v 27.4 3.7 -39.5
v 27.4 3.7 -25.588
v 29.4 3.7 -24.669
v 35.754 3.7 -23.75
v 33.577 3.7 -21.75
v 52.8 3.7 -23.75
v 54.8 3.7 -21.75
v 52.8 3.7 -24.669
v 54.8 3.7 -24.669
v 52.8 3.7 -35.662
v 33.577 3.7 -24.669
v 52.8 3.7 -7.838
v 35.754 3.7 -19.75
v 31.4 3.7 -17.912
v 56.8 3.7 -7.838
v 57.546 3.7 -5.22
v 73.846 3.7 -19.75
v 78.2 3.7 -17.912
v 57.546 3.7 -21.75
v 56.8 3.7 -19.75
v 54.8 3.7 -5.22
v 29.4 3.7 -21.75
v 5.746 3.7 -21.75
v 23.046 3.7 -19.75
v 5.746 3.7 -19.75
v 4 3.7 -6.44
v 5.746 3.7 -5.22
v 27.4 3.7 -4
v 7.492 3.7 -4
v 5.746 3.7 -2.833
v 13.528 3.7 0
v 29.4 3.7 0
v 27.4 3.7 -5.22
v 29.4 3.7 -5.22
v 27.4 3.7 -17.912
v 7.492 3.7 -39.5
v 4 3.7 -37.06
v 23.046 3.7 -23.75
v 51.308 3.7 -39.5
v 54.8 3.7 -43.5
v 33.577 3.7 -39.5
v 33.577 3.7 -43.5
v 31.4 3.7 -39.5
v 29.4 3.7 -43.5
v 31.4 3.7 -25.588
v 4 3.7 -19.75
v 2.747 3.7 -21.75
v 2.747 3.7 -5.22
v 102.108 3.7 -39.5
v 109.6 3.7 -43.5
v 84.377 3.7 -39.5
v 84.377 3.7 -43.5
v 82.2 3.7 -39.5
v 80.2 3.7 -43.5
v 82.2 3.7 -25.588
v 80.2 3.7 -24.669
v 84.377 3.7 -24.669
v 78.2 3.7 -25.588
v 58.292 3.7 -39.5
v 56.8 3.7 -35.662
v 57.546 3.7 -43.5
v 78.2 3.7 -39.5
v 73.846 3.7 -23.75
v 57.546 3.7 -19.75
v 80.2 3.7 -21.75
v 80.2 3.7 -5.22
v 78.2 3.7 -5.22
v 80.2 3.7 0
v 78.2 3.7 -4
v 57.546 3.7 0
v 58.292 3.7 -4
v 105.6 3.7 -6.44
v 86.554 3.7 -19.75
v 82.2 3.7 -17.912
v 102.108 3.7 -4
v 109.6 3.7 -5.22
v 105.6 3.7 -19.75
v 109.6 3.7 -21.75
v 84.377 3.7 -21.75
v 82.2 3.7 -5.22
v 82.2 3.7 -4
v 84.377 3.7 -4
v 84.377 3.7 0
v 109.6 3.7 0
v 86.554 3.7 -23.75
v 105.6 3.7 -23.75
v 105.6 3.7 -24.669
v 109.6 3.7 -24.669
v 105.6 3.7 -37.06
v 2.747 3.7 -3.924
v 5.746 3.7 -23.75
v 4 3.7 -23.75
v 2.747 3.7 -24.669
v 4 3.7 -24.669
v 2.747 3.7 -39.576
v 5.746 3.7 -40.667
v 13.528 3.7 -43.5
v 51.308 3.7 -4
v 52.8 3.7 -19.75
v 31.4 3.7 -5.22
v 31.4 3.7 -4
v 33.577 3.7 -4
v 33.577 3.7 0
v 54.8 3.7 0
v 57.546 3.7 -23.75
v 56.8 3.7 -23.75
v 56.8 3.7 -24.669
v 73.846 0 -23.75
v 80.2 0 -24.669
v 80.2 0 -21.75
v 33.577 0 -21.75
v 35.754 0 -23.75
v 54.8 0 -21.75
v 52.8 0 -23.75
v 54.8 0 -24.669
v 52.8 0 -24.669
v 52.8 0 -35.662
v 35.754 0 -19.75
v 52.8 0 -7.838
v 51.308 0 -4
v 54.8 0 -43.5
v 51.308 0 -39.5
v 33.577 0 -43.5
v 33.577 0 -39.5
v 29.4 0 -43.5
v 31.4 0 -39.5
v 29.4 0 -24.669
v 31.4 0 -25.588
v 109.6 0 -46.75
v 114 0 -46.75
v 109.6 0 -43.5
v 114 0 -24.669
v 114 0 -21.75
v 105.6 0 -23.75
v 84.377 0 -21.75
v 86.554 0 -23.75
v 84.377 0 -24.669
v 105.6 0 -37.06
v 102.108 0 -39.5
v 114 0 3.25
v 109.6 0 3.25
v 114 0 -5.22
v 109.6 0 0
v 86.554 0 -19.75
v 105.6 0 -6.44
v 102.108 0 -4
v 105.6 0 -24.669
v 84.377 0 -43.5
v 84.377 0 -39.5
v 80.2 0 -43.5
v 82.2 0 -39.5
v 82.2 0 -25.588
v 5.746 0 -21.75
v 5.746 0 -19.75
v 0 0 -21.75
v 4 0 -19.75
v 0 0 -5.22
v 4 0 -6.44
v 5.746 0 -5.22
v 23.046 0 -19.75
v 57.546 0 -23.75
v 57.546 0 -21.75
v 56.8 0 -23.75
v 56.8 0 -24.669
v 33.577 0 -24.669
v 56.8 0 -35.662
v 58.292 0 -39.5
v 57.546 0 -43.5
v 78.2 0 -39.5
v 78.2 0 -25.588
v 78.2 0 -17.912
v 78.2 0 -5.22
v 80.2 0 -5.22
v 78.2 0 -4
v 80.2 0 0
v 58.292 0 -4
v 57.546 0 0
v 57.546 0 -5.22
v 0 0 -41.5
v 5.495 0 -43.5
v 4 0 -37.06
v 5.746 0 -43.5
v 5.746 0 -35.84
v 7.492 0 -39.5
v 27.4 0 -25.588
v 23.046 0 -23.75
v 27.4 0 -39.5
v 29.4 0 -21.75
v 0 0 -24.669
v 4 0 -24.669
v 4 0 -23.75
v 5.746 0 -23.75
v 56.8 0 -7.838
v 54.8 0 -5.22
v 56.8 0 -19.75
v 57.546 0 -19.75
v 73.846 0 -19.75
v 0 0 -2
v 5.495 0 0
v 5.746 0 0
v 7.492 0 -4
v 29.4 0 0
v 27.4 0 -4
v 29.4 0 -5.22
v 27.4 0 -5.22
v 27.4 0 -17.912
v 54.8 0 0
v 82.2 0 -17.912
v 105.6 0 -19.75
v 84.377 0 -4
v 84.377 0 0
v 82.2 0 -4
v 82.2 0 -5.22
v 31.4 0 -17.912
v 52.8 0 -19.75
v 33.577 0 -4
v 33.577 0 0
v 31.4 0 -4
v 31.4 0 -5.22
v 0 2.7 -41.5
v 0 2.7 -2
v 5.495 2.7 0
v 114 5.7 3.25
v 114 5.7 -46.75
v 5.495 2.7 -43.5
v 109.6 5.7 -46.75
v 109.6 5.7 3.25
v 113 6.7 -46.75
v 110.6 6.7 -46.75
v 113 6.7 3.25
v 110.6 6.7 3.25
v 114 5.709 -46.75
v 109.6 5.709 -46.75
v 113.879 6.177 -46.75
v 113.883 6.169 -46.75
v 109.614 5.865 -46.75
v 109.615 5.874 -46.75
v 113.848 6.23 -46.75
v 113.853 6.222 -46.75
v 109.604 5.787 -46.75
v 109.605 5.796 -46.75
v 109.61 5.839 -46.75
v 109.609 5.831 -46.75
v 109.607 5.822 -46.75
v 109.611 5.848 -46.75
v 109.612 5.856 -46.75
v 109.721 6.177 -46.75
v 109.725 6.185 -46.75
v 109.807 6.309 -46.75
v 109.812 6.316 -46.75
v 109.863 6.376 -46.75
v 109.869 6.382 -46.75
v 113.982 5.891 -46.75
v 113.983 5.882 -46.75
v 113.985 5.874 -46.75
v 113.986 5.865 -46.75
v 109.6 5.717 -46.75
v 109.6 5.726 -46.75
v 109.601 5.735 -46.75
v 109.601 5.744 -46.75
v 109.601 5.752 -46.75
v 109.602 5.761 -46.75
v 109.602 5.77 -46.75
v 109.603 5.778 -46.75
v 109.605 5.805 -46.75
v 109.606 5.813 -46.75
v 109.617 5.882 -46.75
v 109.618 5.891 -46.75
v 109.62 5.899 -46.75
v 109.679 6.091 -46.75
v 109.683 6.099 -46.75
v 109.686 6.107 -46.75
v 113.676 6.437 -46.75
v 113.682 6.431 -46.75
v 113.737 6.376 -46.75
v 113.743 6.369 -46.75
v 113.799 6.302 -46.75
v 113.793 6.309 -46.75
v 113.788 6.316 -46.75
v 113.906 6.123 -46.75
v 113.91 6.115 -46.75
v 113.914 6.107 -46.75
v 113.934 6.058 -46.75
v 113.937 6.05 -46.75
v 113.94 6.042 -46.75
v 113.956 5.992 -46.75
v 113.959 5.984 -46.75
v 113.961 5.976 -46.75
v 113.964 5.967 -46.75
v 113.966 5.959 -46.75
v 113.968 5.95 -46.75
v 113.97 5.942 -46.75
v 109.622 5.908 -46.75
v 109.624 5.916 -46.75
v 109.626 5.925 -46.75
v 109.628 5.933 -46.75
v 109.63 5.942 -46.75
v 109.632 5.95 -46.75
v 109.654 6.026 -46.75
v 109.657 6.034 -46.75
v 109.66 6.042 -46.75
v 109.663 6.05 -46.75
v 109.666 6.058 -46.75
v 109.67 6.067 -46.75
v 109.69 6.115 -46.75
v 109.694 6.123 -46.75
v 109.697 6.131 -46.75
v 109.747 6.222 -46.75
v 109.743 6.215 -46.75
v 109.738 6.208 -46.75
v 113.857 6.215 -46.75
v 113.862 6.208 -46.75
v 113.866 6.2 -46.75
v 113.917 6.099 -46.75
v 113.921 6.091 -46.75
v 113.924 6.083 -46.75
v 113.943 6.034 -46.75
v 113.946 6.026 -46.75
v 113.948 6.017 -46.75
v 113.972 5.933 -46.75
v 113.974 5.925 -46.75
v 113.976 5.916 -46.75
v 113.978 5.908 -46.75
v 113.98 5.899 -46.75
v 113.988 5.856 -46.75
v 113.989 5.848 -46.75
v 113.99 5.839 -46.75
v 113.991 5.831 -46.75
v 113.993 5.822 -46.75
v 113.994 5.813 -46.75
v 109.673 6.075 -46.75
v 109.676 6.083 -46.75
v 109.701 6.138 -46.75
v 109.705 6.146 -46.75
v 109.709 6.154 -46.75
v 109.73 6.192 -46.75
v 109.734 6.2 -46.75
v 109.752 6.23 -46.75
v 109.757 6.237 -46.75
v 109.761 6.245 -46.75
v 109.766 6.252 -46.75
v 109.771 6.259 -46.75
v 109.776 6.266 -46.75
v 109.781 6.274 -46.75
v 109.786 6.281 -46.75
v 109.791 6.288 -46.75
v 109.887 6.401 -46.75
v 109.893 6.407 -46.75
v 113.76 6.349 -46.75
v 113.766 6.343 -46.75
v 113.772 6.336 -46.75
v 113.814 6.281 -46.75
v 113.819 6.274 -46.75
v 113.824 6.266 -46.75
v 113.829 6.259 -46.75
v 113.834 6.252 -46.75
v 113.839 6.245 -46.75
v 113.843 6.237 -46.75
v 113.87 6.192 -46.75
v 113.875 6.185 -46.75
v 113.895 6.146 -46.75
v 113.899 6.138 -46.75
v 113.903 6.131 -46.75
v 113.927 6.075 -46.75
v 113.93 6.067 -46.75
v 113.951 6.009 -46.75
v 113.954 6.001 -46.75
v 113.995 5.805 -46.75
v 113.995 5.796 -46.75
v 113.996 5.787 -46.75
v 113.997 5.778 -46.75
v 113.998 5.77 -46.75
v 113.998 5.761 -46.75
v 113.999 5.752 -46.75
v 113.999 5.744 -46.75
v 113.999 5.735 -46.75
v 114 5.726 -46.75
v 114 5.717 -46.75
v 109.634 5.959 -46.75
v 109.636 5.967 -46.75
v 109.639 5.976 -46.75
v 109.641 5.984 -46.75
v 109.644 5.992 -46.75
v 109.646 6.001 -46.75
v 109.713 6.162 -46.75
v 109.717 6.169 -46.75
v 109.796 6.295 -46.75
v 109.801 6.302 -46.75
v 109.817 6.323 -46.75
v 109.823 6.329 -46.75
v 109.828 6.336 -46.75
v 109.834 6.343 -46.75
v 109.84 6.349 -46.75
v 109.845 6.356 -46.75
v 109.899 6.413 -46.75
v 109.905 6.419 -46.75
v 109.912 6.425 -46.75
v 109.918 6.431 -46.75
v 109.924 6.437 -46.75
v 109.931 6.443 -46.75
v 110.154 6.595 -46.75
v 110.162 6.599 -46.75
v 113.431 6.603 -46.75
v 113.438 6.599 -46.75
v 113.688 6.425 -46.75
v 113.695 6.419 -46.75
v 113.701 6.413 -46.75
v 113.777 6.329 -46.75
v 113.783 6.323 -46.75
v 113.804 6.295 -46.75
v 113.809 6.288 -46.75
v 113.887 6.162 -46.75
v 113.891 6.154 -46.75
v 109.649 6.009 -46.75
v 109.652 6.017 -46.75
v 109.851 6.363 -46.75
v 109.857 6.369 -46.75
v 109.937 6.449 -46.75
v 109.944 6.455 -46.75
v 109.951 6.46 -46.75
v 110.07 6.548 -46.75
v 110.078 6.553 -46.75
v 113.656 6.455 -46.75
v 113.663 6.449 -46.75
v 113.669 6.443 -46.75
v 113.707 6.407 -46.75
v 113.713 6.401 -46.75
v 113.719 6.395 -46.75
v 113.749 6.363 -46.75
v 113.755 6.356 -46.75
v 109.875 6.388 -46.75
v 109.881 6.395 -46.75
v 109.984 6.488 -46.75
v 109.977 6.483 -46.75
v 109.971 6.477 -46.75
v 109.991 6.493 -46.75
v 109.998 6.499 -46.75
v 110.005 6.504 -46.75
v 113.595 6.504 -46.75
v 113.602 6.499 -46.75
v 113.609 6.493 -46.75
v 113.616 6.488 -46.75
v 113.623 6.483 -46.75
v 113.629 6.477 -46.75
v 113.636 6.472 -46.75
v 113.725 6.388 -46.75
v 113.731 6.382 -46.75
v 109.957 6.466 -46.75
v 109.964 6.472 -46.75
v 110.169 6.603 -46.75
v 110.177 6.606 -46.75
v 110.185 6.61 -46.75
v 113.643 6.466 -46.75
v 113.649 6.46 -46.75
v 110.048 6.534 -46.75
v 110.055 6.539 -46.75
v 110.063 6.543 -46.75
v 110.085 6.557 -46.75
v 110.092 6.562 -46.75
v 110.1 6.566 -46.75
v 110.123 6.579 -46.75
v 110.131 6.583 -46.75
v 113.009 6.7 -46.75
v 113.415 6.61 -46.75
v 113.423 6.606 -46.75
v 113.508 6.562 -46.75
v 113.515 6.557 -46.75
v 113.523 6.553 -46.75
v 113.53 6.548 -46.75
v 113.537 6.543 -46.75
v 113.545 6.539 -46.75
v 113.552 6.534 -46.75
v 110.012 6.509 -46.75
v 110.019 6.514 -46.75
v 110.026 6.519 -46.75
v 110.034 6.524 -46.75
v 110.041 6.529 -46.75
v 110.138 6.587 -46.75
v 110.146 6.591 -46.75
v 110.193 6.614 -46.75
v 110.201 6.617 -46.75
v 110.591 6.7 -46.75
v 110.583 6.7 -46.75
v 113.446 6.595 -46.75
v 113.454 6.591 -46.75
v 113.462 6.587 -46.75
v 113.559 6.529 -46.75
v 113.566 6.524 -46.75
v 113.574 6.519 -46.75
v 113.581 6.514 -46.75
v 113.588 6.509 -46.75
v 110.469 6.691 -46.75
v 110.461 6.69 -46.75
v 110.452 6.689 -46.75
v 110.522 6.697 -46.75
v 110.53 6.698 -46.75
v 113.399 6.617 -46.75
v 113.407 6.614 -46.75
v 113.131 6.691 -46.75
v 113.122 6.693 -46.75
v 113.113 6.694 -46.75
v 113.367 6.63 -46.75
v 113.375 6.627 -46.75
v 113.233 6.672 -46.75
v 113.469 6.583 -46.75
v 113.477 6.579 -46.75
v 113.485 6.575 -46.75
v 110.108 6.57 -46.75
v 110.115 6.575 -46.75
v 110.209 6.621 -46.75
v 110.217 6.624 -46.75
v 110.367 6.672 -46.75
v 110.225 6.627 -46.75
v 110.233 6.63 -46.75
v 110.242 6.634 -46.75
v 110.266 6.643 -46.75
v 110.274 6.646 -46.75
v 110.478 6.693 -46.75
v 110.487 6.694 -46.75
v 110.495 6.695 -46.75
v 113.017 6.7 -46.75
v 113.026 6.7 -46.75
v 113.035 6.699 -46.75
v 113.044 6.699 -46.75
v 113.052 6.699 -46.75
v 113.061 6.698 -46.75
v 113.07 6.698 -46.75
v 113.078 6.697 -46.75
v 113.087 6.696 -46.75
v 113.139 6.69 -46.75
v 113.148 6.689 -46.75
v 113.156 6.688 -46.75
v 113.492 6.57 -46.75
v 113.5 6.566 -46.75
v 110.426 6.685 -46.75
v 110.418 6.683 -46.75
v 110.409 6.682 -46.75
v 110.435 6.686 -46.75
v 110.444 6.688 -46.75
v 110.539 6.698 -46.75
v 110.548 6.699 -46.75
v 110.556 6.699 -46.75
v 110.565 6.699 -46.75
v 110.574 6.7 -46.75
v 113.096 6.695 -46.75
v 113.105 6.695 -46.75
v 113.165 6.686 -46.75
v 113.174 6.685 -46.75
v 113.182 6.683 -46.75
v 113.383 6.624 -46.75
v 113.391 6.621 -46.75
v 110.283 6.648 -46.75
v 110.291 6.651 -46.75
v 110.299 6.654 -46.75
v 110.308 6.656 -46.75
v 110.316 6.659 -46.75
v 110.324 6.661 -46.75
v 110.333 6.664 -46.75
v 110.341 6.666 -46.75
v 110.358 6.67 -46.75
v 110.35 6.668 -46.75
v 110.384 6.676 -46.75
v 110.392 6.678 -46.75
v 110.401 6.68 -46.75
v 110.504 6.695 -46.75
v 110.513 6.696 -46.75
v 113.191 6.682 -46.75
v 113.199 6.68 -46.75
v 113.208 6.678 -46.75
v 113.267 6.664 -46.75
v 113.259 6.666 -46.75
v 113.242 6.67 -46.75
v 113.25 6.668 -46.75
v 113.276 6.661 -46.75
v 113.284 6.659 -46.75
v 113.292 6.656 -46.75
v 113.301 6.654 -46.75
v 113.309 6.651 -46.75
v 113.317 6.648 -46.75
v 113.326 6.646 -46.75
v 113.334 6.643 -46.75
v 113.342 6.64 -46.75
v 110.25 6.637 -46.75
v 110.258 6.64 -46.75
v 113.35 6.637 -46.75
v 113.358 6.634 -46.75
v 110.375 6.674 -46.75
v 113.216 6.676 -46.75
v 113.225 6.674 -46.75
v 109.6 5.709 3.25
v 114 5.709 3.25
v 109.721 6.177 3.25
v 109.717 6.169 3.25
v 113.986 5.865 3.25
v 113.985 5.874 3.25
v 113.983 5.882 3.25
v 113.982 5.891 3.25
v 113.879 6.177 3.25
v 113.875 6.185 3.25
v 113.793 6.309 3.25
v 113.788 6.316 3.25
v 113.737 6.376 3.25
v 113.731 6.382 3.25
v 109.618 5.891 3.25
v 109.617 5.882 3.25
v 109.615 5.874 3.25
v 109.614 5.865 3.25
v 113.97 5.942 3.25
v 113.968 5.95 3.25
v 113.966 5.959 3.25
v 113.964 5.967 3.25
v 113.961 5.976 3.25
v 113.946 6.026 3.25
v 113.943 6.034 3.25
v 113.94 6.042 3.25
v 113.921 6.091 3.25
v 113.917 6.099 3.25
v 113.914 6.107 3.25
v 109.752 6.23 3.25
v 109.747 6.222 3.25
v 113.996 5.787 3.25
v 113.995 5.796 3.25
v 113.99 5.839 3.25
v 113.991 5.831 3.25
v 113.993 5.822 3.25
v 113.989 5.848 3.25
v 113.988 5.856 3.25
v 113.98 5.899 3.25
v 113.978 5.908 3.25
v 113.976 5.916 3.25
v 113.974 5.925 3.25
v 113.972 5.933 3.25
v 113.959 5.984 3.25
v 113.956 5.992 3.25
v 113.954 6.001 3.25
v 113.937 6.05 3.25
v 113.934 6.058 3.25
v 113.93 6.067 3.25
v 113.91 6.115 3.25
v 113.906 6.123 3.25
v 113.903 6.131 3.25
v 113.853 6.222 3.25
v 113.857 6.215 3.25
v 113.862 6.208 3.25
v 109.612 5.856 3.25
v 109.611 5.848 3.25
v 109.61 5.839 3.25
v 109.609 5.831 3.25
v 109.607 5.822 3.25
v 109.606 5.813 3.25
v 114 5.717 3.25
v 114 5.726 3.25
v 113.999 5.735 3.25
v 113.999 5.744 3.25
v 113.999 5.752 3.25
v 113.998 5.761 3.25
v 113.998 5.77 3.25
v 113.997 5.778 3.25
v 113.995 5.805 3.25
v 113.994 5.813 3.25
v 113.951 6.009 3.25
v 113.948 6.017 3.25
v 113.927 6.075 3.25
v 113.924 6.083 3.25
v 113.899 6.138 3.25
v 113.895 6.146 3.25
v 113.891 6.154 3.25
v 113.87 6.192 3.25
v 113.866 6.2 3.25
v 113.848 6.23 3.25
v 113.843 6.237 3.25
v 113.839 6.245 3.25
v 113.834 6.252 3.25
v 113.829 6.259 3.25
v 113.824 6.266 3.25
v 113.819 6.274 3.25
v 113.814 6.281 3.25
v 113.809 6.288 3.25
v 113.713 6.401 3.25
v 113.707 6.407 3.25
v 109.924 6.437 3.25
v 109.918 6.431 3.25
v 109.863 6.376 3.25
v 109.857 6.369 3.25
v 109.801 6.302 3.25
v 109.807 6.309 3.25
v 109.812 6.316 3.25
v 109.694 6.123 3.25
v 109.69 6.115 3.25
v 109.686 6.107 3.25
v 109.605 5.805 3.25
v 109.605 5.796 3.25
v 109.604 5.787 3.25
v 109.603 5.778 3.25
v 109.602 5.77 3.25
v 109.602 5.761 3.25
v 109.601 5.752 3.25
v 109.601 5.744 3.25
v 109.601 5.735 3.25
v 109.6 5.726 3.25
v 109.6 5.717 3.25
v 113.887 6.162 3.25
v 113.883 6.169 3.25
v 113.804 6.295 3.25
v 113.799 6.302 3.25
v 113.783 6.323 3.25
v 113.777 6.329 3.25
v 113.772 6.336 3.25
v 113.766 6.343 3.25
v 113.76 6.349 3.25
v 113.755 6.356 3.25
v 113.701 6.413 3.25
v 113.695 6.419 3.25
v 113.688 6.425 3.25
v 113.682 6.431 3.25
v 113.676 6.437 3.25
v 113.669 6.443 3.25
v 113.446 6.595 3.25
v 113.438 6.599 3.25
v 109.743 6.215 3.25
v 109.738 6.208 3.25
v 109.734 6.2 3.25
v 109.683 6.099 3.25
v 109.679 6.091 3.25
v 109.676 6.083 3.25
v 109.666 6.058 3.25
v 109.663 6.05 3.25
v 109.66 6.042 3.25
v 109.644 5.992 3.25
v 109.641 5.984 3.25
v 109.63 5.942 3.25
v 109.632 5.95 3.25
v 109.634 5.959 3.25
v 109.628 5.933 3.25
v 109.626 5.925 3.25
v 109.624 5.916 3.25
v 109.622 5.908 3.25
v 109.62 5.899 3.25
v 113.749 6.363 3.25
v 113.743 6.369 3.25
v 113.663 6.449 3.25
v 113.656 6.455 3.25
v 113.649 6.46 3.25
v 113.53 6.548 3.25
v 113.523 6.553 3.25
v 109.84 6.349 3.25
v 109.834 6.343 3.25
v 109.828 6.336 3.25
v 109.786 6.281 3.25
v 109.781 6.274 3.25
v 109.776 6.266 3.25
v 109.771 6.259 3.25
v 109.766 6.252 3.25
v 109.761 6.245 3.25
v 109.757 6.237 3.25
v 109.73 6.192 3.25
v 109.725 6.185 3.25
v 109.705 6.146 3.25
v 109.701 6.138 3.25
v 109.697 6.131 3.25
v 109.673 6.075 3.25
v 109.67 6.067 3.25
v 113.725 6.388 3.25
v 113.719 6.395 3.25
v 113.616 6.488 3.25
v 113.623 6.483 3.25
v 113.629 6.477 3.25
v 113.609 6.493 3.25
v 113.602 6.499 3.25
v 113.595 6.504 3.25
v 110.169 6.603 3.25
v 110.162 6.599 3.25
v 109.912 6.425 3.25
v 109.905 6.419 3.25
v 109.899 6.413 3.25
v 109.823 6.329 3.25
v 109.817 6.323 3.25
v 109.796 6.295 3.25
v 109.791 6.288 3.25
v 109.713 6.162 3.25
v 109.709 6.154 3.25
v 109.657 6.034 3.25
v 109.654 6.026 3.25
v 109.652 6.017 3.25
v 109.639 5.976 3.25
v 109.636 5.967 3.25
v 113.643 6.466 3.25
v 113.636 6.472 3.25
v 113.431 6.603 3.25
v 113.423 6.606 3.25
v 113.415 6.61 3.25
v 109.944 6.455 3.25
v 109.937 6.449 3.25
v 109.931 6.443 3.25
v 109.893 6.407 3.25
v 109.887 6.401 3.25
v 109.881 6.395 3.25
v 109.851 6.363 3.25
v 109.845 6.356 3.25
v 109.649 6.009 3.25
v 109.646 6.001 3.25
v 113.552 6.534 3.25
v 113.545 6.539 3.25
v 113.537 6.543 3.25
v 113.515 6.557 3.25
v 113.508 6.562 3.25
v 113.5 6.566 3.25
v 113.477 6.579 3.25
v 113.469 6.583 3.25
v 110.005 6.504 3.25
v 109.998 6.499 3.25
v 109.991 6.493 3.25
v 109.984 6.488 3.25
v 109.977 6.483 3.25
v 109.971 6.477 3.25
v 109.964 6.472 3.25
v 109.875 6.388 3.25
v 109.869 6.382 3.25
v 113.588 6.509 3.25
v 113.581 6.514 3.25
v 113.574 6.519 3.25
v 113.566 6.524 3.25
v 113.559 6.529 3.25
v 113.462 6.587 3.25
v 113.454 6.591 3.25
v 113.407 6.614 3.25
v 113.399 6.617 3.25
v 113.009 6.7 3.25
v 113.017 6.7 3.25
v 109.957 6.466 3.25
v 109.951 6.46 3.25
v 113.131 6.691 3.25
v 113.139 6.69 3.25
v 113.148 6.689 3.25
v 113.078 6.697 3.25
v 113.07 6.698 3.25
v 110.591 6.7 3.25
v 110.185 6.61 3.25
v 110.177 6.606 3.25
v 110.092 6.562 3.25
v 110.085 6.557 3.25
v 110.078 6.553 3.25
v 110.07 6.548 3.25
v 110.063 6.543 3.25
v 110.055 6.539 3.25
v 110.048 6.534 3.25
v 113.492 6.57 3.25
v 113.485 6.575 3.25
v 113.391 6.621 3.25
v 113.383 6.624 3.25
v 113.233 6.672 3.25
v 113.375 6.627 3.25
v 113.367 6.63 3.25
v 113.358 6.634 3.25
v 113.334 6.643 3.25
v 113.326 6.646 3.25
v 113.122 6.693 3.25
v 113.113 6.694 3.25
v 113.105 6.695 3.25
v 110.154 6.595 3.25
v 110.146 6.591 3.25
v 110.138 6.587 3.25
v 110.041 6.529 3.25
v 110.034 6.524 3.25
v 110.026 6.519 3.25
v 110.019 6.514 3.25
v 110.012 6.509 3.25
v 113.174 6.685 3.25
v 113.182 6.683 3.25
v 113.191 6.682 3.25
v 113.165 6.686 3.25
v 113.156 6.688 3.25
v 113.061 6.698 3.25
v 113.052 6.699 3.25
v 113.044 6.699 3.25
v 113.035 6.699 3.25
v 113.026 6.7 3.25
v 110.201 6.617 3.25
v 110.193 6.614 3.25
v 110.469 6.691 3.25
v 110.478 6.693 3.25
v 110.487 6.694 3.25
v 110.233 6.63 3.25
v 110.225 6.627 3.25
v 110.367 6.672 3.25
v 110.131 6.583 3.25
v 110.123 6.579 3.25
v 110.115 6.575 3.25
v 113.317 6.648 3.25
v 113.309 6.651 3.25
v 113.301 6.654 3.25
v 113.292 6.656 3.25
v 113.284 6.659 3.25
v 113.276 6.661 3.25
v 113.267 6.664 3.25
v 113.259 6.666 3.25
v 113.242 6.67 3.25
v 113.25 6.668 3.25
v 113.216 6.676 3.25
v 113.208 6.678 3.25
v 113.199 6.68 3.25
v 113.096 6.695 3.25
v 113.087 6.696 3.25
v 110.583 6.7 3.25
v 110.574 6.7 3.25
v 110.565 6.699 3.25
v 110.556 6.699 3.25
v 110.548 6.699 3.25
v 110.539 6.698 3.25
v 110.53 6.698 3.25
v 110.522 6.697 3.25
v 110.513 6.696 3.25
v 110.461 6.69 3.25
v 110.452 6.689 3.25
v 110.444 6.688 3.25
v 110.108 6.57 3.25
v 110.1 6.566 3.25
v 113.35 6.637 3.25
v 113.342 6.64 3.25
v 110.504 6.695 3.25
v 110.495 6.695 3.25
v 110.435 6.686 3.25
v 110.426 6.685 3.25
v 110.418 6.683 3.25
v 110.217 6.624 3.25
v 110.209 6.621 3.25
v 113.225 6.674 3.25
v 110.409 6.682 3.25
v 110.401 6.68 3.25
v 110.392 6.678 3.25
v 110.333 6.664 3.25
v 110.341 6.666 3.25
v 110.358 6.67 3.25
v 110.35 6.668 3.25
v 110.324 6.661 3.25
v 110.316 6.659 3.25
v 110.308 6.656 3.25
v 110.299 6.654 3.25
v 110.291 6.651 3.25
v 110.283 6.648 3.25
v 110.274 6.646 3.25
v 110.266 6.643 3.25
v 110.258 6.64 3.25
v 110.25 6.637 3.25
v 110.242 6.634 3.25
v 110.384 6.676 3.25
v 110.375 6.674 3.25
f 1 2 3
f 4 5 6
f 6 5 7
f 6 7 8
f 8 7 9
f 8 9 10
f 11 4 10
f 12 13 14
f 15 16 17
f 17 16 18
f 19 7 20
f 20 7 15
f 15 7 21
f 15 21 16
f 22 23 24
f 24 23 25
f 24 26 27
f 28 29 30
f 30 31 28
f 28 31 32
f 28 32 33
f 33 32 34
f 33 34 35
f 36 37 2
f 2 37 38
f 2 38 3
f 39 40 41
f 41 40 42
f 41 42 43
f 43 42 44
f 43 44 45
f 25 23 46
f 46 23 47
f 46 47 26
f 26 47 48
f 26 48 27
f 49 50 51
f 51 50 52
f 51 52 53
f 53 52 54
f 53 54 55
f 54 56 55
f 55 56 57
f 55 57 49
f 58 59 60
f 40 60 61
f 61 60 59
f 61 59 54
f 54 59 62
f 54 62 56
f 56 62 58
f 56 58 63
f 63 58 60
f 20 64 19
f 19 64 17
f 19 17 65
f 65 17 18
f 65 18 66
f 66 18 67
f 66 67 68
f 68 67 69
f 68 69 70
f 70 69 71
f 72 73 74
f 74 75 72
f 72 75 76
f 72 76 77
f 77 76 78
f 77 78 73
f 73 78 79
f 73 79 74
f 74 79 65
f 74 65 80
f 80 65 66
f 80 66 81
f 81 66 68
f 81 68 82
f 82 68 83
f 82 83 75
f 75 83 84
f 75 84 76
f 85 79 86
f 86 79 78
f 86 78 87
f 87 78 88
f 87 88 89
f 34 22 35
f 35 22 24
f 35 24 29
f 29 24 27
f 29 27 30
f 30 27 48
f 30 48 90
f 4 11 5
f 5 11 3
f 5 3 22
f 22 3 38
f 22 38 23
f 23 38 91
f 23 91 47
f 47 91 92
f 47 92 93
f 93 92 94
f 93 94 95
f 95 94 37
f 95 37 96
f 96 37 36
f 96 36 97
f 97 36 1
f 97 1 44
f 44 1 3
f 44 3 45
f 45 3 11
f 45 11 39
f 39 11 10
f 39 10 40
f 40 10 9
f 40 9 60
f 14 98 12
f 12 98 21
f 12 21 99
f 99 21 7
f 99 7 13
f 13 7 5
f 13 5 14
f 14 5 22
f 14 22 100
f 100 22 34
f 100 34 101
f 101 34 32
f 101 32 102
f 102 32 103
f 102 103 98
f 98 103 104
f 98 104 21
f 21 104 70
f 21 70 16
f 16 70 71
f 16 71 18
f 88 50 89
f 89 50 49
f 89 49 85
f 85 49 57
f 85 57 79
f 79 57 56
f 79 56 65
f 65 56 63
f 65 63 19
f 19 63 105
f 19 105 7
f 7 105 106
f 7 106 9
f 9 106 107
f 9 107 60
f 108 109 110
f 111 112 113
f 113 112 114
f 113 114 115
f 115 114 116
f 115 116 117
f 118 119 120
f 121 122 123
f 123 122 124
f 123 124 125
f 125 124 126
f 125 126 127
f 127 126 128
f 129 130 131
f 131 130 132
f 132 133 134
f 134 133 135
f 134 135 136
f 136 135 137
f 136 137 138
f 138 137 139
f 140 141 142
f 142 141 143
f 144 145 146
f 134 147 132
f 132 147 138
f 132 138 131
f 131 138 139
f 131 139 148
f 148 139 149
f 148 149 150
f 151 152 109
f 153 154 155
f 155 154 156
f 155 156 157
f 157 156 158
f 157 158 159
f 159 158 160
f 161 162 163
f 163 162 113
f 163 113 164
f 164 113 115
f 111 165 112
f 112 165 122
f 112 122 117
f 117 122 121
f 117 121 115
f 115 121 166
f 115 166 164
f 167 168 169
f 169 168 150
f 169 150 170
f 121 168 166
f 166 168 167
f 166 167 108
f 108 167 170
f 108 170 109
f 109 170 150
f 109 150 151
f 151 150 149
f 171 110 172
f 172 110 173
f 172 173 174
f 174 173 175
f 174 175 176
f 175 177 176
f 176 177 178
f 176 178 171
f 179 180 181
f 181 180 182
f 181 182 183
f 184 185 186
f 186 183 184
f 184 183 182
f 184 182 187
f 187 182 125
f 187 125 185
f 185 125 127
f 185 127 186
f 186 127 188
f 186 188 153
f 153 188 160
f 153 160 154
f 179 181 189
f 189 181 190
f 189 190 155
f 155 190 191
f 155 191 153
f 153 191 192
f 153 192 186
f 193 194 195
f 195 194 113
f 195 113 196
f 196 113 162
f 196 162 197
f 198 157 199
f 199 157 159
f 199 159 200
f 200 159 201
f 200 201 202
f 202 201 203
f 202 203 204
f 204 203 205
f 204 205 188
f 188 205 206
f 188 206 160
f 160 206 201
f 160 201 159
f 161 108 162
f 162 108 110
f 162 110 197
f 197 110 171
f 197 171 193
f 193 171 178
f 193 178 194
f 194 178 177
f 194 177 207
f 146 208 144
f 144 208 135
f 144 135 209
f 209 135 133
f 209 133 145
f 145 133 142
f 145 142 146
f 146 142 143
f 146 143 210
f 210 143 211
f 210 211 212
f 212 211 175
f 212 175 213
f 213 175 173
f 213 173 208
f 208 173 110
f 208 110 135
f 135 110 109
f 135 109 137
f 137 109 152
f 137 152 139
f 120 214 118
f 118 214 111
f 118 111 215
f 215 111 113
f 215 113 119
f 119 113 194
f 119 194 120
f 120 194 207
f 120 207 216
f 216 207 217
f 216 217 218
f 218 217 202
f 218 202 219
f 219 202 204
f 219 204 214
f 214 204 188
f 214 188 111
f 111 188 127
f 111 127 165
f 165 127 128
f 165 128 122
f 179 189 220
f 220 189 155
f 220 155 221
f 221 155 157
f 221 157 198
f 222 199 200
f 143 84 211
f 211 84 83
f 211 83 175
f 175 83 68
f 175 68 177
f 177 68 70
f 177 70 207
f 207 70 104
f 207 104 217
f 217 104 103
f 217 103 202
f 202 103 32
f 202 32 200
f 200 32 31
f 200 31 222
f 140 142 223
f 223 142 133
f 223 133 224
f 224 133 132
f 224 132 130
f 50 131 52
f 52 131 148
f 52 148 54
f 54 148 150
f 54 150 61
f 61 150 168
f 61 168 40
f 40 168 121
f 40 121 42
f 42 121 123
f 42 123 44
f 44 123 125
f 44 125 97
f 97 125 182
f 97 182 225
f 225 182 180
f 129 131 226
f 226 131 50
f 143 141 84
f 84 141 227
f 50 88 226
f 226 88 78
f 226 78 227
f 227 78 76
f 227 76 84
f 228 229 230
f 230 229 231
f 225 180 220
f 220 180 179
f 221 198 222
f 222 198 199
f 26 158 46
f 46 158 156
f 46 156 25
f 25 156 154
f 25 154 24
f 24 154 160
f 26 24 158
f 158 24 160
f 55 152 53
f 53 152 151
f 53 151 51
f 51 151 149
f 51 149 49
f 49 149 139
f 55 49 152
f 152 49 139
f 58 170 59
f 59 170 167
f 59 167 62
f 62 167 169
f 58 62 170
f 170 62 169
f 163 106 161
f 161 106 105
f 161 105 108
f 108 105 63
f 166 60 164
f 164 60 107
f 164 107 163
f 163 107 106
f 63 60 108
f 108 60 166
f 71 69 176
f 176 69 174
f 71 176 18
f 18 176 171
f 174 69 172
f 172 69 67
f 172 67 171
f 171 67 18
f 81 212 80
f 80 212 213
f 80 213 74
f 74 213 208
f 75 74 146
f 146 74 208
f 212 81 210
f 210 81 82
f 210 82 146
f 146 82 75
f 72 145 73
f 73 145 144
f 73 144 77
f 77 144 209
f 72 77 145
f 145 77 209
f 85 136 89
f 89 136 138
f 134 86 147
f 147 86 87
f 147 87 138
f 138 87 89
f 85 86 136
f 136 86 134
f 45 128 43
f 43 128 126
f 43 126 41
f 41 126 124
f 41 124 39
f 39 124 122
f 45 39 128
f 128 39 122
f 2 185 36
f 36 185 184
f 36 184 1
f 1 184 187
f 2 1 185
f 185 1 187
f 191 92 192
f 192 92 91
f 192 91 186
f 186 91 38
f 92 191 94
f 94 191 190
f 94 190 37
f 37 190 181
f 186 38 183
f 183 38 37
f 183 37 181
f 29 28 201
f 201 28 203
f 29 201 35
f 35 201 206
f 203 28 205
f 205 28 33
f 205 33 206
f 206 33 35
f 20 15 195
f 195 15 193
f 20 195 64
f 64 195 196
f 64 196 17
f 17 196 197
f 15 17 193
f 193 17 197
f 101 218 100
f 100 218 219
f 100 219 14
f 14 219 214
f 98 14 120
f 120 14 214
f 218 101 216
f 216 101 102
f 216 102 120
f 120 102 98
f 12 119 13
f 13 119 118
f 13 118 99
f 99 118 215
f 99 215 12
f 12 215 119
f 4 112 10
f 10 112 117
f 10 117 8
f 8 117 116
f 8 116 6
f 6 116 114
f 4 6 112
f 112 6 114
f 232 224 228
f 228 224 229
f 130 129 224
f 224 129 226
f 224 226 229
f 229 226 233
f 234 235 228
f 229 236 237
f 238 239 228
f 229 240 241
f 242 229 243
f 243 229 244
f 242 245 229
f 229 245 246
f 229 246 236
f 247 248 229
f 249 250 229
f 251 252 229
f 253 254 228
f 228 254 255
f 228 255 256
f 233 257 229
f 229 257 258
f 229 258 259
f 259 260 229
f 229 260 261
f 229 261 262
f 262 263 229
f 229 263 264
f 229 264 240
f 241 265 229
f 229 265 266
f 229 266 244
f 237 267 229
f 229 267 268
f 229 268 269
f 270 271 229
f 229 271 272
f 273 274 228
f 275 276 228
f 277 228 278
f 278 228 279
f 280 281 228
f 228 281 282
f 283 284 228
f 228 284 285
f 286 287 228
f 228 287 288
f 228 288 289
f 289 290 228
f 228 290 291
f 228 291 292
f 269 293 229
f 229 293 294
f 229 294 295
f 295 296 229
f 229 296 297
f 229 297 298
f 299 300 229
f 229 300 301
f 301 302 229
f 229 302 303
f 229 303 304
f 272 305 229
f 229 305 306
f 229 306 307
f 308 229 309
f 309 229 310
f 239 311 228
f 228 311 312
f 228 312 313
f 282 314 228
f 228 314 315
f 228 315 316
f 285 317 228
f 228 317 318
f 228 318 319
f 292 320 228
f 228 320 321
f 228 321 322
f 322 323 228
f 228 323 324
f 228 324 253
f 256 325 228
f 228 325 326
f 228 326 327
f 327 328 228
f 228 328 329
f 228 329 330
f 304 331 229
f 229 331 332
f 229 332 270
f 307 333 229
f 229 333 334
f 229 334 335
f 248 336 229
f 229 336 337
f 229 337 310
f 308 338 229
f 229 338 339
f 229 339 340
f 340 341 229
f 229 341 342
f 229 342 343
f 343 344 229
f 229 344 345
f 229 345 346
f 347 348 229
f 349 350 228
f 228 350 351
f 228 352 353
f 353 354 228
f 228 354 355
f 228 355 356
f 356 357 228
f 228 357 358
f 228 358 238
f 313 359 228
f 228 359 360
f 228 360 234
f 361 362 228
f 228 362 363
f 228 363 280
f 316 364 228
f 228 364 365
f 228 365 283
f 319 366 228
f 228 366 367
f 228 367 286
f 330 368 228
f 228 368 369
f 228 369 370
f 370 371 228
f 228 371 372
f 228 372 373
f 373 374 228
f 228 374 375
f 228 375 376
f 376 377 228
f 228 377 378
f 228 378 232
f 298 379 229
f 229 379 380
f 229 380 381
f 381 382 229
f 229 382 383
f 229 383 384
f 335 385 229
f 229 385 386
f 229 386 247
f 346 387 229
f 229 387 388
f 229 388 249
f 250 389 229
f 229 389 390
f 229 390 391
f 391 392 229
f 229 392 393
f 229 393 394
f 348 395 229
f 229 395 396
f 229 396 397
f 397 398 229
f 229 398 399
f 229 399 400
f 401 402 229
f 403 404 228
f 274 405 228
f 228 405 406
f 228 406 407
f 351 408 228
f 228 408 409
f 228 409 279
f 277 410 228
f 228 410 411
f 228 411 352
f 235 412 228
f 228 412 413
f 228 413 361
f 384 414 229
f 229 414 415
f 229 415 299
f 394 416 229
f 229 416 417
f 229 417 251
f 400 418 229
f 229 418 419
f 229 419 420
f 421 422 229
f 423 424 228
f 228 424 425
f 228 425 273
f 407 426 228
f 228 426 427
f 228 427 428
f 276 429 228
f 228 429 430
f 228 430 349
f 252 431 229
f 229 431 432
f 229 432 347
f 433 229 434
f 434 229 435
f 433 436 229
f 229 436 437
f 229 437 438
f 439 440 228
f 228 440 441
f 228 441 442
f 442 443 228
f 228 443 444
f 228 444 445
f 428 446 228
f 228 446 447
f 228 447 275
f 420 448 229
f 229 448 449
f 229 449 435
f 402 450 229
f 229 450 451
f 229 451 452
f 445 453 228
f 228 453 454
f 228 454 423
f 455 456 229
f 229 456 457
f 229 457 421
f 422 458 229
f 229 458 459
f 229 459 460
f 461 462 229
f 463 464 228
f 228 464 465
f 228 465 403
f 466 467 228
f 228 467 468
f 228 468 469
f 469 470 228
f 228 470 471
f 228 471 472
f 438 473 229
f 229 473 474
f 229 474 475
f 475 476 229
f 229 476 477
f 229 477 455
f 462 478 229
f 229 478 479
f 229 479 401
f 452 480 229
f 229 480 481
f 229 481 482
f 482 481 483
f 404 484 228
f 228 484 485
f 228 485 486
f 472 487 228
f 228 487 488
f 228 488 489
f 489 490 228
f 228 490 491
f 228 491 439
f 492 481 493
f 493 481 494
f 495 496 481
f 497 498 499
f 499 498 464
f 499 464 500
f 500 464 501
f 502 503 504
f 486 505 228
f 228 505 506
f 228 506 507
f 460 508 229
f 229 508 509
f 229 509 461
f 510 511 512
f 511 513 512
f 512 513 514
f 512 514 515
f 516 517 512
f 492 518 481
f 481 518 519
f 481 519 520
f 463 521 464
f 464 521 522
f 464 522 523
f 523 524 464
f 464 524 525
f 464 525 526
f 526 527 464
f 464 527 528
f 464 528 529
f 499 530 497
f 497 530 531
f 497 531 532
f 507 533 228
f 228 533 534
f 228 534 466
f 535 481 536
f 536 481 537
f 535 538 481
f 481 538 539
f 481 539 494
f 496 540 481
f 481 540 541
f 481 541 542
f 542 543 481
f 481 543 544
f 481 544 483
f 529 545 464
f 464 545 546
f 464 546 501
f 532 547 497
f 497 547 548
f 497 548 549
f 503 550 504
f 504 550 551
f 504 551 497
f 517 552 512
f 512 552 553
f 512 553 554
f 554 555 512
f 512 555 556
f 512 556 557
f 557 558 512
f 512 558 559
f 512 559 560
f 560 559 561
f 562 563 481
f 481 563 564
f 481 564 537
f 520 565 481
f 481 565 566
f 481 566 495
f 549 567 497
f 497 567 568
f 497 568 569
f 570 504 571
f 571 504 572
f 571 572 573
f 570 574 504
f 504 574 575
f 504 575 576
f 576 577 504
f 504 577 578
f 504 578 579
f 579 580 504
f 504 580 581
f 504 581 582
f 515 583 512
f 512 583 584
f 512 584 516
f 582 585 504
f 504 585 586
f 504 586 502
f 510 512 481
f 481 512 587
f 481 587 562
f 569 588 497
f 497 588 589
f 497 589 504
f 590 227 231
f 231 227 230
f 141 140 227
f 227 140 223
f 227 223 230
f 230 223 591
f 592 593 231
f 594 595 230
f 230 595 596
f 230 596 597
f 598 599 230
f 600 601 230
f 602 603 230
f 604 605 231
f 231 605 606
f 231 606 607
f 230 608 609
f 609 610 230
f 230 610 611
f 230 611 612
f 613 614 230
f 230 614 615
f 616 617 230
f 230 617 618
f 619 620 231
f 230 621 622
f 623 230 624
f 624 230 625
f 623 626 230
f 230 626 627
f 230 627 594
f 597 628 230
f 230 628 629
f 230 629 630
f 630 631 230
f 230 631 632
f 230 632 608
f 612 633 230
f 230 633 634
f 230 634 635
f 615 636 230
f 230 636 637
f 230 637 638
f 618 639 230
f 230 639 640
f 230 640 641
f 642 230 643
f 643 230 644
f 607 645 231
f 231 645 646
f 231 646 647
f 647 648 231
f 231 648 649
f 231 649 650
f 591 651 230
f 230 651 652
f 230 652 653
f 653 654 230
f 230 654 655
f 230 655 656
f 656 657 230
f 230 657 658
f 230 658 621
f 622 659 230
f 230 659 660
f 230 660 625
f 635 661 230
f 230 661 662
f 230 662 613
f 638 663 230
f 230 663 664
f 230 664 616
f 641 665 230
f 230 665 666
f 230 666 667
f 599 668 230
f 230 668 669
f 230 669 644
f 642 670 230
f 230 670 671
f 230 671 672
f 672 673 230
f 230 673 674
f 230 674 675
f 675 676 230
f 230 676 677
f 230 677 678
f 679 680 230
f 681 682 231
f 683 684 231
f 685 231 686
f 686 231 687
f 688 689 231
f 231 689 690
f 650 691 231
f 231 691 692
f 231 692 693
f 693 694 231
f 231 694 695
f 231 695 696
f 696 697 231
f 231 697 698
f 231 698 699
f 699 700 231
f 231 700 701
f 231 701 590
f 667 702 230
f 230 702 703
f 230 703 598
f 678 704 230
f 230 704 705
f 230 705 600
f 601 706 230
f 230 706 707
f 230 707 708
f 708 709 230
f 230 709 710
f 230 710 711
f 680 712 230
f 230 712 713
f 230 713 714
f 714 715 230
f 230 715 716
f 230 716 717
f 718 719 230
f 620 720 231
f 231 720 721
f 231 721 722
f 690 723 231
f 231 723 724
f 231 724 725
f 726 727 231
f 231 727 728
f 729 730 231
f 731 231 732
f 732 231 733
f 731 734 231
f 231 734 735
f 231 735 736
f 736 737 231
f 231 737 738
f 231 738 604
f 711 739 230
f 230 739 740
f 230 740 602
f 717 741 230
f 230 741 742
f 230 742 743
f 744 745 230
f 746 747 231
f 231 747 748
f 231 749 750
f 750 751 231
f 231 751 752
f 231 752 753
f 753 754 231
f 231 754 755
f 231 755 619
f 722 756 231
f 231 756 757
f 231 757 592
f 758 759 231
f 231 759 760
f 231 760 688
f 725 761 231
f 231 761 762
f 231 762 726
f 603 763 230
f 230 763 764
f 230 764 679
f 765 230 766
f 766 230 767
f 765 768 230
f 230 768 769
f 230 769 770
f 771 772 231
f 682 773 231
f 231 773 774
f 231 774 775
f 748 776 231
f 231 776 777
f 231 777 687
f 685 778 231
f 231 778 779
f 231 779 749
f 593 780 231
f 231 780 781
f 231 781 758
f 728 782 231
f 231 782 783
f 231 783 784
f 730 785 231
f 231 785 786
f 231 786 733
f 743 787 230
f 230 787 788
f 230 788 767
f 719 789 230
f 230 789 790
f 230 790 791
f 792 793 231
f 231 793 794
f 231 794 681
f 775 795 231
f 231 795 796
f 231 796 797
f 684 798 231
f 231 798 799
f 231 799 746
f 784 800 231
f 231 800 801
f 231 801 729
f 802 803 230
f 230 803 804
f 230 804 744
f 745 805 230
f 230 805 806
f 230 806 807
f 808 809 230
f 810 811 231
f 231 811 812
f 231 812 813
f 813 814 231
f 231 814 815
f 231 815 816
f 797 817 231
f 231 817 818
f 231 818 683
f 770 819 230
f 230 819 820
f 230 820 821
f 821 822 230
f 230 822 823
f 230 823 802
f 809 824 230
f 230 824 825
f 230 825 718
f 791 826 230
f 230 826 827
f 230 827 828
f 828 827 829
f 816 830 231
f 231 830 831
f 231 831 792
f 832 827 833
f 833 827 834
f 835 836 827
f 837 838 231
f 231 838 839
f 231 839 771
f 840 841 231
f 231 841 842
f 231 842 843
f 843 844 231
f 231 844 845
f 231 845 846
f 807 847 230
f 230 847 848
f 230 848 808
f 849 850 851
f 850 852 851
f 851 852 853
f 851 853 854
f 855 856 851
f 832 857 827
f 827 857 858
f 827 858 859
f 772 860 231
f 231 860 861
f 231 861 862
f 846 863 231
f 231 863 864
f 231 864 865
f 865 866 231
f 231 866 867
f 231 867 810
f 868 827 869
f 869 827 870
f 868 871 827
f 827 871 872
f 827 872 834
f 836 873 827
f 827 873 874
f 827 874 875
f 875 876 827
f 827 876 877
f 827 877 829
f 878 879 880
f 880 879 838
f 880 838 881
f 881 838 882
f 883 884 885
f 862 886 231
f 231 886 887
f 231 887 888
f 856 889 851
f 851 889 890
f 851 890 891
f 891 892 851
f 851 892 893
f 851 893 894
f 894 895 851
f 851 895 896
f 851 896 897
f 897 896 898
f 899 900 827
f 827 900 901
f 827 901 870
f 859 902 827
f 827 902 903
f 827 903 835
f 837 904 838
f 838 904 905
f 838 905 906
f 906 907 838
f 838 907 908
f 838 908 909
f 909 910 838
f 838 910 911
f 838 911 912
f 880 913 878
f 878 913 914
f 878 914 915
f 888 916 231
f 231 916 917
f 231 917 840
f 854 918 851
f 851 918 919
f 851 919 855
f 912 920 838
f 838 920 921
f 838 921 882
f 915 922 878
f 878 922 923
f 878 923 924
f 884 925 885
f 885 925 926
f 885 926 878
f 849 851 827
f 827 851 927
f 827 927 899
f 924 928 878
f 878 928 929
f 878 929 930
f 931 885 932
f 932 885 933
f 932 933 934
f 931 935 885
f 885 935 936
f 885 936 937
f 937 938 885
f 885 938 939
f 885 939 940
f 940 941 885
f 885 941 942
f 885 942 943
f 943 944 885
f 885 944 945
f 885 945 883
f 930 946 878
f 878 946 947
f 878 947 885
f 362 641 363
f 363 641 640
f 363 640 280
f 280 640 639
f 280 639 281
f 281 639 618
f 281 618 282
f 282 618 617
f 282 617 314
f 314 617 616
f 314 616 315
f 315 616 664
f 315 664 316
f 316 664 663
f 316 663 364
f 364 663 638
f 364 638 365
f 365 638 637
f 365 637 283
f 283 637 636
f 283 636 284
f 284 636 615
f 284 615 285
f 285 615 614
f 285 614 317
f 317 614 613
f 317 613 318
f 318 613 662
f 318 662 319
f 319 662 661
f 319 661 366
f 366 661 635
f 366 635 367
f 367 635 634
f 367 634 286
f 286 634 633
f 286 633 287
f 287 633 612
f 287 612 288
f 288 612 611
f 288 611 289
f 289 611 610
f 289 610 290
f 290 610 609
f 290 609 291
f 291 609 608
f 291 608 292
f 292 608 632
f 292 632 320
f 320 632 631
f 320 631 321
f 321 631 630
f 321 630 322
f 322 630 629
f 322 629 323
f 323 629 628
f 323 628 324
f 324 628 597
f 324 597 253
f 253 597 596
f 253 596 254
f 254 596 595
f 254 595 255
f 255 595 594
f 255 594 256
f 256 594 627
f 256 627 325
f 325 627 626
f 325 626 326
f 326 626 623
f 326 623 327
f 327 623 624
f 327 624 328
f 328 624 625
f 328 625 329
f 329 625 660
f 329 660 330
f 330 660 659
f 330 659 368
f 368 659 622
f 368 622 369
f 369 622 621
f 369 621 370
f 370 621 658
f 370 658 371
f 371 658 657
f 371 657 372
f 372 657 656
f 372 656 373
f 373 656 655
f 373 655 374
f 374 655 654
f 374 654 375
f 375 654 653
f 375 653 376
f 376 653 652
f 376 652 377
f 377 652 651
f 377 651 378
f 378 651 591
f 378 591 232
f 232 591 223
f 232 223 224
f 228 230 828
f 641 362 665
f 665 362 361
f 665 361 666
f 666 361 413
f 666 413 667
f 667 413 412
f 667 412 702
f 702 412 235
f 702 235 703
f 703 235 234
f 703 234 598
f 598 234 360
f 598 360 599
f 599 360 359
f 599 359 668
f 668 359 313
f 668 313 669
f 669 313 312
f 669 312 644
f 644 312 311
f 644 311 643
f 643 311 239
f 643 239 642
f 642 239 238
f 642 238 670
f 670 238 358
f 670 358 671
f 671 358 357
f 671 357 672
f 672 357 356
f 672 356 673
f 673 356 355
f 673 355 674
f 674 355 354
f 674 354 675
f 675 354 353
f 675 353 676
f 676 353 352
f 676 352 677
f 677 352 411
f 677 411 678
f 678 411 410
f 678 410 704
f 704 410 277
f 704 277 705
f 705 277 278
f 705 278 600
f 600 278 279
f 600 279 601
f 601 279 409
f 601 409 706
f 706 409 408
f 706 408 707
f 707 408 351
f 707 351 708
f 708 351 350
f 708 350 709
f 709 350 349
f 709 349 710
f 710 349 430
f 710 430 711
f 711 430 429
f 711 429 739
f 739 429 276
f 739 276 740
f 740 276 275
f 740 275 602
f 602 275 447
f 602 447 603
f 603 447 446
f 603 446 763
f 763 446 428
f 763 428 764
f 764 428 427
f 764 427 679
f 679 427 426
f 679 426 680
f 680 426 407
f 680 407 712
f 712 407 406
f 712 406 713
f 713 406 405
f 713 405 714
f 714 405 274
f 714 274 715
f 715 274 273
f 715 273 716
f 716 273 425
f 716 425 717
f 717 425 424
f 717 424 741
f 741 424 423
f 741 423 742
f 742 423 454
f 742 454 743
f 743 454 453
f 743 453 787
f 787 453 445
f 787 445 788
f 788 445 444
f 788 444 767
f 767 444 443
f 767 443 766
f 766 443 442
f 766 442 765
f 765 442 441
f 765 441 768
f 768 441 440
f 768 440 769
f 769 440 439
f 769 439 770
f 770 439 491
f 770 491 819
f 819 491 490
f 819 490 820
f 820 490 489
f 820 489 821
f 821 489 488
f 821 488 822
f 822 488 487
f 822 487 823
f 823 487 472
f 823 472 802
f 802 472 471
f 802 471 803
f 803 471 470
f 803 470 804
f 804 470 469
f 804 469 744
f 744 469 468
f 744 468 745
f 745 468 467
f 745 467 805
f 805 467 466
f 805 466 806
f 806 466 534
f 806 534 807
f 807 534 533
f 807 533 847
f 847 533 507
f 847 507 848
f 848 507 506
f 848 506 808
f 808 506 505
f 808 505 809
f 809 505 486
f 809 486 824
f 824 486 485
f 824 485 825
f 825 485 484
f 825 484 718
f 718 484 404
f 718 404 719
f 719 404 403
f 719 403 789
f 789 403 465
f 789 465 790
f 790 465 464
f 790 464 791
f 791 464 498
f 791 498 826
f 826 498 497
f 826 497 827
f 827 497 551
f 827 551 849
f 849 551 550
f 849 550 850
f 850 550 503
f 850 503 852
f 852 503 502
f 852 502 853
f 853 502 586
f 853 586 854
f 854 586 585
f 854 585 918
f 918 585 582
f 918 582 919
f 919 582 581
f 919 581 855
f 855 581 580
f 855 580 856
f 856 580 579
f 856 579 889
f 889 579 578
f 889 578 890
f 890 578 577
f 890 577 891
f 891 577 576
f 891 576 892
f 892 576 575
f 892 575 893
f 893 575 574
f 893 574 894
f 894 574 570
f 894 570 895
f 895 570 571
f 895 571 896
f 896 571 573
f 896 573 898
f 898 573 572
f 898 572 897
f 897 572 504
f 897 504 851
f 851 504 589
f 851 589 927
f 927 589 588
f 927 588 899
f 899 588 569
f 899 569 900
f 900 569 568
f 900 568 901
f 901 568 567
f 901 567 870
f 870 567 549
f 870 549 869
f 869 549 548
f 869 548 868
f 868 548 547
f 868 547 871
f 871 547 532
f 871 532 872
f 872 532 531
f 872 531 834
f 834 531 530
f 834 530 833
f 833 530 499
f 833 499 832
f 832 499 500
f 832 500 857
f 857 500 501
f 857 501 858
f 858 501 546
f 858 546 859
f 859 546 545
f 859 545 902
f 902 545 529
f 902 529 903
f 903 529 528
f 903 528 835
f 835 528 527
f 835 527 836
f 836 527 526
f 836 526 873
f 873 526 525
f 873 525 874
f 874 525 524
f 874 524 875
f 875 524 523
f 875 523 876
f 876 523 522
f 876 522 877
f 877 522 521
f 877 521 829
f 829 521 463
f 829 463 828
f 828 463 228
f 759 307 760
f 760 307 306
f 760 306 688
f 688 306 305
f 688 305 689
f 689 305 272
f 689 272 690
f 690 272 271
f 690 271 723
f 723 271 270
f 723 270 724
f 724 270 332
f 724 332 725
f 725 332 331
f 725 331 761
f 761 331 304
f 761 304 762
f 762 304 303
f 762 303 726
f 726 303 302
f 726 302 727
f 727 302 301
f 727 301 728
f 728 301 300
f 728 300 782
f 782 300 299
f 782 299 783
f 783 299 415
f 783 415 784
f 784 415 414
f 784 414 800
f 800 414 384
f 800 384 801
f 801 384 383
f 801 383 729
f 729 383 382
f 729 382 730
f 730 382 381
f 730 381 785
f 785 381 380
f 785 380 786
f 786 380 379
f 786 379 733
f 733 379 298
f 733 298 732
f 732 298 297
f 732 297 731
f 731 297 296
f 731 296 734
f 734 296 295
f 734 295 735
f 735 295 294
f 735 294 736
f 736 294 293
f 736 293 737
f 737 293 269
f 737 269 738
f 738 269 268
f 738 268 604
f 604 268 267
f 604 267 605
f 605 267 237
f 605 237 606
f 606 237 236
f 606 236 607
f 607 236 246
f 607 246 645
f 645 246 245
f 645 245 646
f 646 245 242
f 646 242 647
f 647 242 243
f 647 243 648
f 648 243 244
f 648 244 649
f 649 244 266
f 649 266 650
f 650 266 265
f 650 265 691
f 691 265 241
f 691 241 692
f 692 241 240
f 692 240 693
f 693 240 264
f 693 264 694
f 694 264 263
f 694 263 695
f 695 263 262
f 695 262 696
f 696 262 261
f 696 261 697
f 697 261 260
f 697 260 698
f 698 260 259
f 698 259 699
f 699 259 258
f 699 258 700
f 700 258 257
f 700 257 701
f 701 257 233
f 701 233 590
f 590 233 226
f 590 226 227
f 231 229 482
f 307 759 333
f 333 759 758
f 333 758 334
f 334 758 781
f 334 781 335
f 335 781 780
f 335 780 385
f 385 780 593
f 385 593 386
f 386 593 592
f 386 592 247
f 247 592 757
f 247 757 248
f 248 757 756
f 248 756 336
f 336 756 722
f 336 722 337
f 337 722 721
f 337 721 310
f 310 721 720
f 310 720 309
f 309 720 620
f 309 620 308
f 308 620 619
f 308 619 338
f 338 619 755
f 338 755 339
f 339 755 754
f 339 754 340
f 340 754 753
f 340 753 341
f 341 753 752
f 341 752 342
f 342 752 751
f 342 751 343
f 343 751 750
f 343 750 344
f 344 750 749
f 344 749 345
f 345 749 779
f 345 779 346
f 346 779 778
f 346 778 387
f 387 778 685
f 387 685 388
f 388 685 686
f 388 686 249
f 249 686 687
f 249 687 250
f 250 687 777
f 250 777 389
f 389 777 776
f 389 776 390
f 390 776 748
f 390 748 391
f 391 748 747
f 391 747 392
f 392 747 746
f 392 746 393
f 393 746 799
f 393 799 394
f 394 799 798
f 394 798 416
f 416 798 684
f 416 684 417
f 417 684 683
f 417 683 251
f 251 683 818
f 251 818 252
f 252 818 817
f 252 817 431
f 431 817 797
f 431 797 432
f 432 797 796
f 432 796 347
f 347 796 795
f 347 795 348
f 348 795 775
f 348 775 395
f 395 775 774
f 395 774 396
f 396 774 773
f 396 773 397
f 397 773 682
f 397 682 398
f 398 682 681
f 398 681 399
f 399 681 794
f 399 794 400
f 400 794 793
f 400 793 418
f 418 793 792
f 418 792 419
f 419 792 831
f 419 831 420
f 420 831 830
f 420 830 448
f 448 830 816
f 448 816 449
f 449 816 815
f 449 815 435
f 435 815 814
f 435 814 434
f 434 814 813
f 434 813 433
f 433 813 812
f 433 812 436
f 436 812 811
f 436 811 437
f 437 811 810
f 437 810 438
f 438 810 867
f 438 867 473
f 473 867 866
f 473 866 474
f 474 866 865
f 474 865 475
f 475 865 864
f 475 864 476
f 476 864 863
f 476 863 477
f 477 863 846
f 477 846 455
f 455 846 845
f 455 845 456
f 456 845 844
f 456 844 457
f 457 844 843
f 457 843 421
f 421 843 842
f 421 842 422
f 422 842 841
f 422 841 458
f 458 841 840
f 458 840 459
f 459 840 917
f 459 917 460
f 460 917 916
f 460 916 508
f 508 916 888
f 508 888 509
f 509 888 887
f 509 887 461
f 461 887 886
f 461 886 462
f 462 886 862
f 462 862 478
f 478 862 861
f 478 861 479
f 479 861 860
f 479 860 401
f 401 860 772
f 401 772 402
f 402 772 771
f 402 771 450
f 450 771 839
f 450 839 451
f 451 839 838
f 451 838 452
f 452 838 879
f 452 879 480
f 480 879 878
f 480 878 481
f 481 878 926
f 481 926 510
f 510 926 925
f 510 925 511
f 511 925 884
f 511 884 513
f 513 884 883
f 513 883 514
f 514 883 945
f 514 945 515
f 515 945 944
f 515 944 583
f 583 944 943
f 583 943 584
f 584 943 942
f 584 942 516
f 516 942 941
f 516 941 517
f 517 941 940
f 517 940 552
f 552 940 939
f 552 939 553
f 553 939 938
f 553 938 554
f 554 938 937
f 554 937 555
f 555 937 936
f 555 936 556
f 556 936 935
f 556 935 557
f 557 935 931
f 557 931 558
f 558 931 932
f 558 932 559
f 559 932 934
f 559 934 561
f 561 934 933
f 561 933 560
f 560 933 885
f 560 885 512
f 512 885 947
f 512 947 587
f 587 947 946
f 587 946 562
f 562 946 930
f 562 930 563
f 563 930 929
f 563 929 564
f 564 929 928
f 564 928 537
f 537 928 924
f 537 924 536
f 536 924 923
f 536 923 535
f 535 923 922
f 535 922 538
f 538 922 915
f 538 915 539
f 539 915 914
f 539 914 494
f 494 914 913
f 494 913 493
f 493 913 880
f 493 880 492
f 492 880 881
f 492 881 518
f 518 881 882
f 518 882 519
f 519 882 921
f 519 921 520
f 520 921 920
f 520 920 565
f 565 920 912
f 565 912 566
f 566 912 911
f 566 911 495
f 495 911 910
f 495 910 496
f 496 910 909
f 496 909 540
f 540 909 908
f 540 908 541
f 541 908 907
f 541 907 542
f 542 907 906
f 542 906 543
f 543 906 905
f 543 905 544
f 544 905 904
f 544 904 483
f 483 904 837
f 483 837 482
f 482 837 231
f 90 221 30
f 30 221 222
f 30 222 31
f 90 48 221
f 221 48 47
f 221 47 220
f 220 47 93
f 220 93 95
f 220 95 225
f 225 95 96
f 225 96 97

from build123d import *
from OCP.BRepFilletAPI import BRepFilletAPI_MakeChamfer

# Parameters (mm, degrees)
SKETCH1_W                = 114
SKETCH1_H                = 43.5
BOSS_EXTRUDE1_DEPTH      = 3.7
SKETCH2_W                = 4.4
SKETCH2_H                = 43.5
BOSS_EXTRUDE2_DEPTH      = 3
CHAMFER1_SIZE            = 2
CHAMFER1_SIZE2           = 5.494954839
CUT_EXTRUDE1_DEPTH       = 7.5
BOSS_EXTRUDE3_DEPTH      = 3.25
BOSS_EXTRUDE3_DEPTH_BACK = 46.75
SKETCH6_W                = 4.4
SKETCH6_H                = 6.7
FILLET2_R                = 1
CHAMFER2_SIZE            = 1
CHAMFER2_SIZE2           = 2.747477419


with BuildPart() as part:
    # Sketch1 → Boss-Extrude1 (new body)
    with BuildSketch(Plane(origin=(0, 0, 0), x_dir=(1, 0, 0), z_dir=(0, 1, 0))):
        with Locations((57, 21.75)):
            Rectangle(SKETCH1_W, SKETCH1_H)
    extrude(amount=BOSS_EXTRUDE1_DEPTH)

    # Sketch2 → Boss-Extrude2 (add)
    with BuildSketch(Plane(origin=(0, 3.7, 0), x_dir=(1, 0, 0), z_dir=(0, 1, 0))):
        with Locations((111.8, 21.75)):
            Rectangle(SKETCH2_W, SKETCH2_H)
    extrude(amount=BOSS_EXTRUDE2_DEPTH)

    # Chamfer1
    chamfer1_edges = [part.edges().sort_by_distance(p)[0] for p in [
        (0, 1.85, -43.5),
        (0, 1.85, 0),
    ]]
    chamfer1_side = [part.faces().sort_by_distance(p)[0] for p in [
        (0, 1.85, -21.75),
    ]]
    chamfer(chamfer1_edges, length=CHAMFER1_SIZE, length2=CHAMFER1_SIZE2, reference=chamfer1_side[0])

    # Sketch3 → Cut-Extrude1 (cut)
    with BuildSketch(Plane(origin=(0, 3.7, 0), x_dir=(1, 0, 0), z_dir=(0, 1, 0))):
        Polygon((4, 6.439957255), (23.046483703, 19.75), (4, 19.75), align=None)
        Polygon((27.4, 4), (27.4, 17.91240495), (7.491544466, 4), align=None)
        Polygon((23.046483703, 23.75), (4, 37.060042745), (4, 23.75), align=None)
        Polygon((27.4, 25.58759505), (27.4, 39.5), (7.491544466, 39.5), align=None)
        Polygon((31.4, 25.58759505), (51.308455534, 39.5), (31.4, 39.5), align=None)
        Polygon((52.8, 23.75), (52.8, 35.66240495), (35.753516297, 23.75), align=None)
        Polygon((52.8, 7.83759505), (52.8, 19.75), (35.753516297, 19.75), align=None)
        Polygon((31.4, 4), (51.308455534, 4), (31.4, 17.91240495), align=None)
        Polygon((73.846483703, 19.75), (56.8, 19.75), (56.8, 7.83759505), align=None)
        Polygon((78.2, 17.91240495), (58.291544466, 4), (78.2, 4), align=None)
        Polygon((56.8, 35.66240495), (56.8, 23.75), (73.846483703, 23.75), align=None)
        Polygon((78.2, 39.5), (58.291544466, 39.5), (78.2, 25.58759505), align=None)
        Polygon((102.108455534, 39.5), (82.2, 39.5), (82.2, 25.58759505), align=None)
        Polygon((105.6, 23.75), (105.6, 37.060042745), (86.553516297, 23.75), align=None)
        Polygon((105.6, 19.75), (86.553516297, 19.75), (105.6, 6.439957255), align=None)
        Polygon((82.2, 17.91240495), (82.2, 4), (102.108455534, 4), align=None)
    extrude(amount=-CUT_EXTRUDE1_DEPTH, mode=Mode.SUBTRACT)

    # Sketch6 → Boss-Extrude3 (add, two sides: drawn at the far end of the back side and taken through both)
    with BuildSketch(Plane.XY.offset(-BOSS_EXTRUDE3_DEPTH_BACK)):
        with Locations((111.8, 3.35)):
            Rectangle(SKETCH6_W, SKETCH6_H)
    extrude(amount=BOSS_EXTRUDE3_DEPTH + BOSS_EXTRUDE3_DEPTH_BACK)

    # Fillet2
    fillet2_edges = [part.edges().sort_by_distance(p)[0] for p in [
        (114, 6.7, -21.75),
        (109.6, 6.7, -21.75),
    ]]
    fillet(fillet2_edges, radius=FILLET2_R)

    # Chamfer2: one chamfer whose edges measure the first distance from different faces: ONE call of the kernel's chamfer builder (chamfer() names one face for all edges)
    chamfer2_edges_1 = [part.edges().sort_by_distance(p)[0] for p in [
        (0, 3.7, -21.75),
    ]]
    chamfer2_side_1 = [part.faces().sort_by_distance(p)[0] for p in [
        (0, 1.85, -21.75),
    ]]
    chamfer2_edges_2 = [part.edges().sort_by_distance(p)[0] for p in [
        (2.747477419, 3.7, -1),
    ]]
    chamfer2_side_2 = [part.faces().sort_by_distance(p)[0] for p in [
        (2.747477419, 1.85, -1),
    ]]
    chamfer2_edges_3 = [part.edges().sort_by_distance(p)[0] for p in [
        (2.747477419, 3.7, -42.5),
    ]]
    chamfer2_side_3 = [part.faces().sort_by_distance(p)[0] for p in [
        (2.747477419, 1.85, -42.5),
    ]]
    chamfer2 = BRepFilletAPI_MakeChamfer(part.part.solid().wrapped)
    for e in chamfer2_edges_1:
        chamfer2.Add(CHAMFER2_SIZE, CHAMFER2_SIZE2, e.wrapped, chamfer2_side_1[0].wrapped)  # the first distance lies on this face
    for e in chamfer2_edges_2:
        chamfer2.Add(CHAMFER2_SIZE, CHAMFER2_SIZE2, e.wrapped, chamfer2_side_2[0].wrapped)  # the first distance lies on this face
    for e in chamfer2_edges_3:
        chamfer2.Add(CHAMFER2_SIZE, CHAMFER2_SIZE2, e.wrapped, chamfer2_side_3[0].wrapped)  # the first distance lies on this face
    add(Compound.cast(chamfer2.Shape()), mode=Mode.REPLACE)


solid = part.part
